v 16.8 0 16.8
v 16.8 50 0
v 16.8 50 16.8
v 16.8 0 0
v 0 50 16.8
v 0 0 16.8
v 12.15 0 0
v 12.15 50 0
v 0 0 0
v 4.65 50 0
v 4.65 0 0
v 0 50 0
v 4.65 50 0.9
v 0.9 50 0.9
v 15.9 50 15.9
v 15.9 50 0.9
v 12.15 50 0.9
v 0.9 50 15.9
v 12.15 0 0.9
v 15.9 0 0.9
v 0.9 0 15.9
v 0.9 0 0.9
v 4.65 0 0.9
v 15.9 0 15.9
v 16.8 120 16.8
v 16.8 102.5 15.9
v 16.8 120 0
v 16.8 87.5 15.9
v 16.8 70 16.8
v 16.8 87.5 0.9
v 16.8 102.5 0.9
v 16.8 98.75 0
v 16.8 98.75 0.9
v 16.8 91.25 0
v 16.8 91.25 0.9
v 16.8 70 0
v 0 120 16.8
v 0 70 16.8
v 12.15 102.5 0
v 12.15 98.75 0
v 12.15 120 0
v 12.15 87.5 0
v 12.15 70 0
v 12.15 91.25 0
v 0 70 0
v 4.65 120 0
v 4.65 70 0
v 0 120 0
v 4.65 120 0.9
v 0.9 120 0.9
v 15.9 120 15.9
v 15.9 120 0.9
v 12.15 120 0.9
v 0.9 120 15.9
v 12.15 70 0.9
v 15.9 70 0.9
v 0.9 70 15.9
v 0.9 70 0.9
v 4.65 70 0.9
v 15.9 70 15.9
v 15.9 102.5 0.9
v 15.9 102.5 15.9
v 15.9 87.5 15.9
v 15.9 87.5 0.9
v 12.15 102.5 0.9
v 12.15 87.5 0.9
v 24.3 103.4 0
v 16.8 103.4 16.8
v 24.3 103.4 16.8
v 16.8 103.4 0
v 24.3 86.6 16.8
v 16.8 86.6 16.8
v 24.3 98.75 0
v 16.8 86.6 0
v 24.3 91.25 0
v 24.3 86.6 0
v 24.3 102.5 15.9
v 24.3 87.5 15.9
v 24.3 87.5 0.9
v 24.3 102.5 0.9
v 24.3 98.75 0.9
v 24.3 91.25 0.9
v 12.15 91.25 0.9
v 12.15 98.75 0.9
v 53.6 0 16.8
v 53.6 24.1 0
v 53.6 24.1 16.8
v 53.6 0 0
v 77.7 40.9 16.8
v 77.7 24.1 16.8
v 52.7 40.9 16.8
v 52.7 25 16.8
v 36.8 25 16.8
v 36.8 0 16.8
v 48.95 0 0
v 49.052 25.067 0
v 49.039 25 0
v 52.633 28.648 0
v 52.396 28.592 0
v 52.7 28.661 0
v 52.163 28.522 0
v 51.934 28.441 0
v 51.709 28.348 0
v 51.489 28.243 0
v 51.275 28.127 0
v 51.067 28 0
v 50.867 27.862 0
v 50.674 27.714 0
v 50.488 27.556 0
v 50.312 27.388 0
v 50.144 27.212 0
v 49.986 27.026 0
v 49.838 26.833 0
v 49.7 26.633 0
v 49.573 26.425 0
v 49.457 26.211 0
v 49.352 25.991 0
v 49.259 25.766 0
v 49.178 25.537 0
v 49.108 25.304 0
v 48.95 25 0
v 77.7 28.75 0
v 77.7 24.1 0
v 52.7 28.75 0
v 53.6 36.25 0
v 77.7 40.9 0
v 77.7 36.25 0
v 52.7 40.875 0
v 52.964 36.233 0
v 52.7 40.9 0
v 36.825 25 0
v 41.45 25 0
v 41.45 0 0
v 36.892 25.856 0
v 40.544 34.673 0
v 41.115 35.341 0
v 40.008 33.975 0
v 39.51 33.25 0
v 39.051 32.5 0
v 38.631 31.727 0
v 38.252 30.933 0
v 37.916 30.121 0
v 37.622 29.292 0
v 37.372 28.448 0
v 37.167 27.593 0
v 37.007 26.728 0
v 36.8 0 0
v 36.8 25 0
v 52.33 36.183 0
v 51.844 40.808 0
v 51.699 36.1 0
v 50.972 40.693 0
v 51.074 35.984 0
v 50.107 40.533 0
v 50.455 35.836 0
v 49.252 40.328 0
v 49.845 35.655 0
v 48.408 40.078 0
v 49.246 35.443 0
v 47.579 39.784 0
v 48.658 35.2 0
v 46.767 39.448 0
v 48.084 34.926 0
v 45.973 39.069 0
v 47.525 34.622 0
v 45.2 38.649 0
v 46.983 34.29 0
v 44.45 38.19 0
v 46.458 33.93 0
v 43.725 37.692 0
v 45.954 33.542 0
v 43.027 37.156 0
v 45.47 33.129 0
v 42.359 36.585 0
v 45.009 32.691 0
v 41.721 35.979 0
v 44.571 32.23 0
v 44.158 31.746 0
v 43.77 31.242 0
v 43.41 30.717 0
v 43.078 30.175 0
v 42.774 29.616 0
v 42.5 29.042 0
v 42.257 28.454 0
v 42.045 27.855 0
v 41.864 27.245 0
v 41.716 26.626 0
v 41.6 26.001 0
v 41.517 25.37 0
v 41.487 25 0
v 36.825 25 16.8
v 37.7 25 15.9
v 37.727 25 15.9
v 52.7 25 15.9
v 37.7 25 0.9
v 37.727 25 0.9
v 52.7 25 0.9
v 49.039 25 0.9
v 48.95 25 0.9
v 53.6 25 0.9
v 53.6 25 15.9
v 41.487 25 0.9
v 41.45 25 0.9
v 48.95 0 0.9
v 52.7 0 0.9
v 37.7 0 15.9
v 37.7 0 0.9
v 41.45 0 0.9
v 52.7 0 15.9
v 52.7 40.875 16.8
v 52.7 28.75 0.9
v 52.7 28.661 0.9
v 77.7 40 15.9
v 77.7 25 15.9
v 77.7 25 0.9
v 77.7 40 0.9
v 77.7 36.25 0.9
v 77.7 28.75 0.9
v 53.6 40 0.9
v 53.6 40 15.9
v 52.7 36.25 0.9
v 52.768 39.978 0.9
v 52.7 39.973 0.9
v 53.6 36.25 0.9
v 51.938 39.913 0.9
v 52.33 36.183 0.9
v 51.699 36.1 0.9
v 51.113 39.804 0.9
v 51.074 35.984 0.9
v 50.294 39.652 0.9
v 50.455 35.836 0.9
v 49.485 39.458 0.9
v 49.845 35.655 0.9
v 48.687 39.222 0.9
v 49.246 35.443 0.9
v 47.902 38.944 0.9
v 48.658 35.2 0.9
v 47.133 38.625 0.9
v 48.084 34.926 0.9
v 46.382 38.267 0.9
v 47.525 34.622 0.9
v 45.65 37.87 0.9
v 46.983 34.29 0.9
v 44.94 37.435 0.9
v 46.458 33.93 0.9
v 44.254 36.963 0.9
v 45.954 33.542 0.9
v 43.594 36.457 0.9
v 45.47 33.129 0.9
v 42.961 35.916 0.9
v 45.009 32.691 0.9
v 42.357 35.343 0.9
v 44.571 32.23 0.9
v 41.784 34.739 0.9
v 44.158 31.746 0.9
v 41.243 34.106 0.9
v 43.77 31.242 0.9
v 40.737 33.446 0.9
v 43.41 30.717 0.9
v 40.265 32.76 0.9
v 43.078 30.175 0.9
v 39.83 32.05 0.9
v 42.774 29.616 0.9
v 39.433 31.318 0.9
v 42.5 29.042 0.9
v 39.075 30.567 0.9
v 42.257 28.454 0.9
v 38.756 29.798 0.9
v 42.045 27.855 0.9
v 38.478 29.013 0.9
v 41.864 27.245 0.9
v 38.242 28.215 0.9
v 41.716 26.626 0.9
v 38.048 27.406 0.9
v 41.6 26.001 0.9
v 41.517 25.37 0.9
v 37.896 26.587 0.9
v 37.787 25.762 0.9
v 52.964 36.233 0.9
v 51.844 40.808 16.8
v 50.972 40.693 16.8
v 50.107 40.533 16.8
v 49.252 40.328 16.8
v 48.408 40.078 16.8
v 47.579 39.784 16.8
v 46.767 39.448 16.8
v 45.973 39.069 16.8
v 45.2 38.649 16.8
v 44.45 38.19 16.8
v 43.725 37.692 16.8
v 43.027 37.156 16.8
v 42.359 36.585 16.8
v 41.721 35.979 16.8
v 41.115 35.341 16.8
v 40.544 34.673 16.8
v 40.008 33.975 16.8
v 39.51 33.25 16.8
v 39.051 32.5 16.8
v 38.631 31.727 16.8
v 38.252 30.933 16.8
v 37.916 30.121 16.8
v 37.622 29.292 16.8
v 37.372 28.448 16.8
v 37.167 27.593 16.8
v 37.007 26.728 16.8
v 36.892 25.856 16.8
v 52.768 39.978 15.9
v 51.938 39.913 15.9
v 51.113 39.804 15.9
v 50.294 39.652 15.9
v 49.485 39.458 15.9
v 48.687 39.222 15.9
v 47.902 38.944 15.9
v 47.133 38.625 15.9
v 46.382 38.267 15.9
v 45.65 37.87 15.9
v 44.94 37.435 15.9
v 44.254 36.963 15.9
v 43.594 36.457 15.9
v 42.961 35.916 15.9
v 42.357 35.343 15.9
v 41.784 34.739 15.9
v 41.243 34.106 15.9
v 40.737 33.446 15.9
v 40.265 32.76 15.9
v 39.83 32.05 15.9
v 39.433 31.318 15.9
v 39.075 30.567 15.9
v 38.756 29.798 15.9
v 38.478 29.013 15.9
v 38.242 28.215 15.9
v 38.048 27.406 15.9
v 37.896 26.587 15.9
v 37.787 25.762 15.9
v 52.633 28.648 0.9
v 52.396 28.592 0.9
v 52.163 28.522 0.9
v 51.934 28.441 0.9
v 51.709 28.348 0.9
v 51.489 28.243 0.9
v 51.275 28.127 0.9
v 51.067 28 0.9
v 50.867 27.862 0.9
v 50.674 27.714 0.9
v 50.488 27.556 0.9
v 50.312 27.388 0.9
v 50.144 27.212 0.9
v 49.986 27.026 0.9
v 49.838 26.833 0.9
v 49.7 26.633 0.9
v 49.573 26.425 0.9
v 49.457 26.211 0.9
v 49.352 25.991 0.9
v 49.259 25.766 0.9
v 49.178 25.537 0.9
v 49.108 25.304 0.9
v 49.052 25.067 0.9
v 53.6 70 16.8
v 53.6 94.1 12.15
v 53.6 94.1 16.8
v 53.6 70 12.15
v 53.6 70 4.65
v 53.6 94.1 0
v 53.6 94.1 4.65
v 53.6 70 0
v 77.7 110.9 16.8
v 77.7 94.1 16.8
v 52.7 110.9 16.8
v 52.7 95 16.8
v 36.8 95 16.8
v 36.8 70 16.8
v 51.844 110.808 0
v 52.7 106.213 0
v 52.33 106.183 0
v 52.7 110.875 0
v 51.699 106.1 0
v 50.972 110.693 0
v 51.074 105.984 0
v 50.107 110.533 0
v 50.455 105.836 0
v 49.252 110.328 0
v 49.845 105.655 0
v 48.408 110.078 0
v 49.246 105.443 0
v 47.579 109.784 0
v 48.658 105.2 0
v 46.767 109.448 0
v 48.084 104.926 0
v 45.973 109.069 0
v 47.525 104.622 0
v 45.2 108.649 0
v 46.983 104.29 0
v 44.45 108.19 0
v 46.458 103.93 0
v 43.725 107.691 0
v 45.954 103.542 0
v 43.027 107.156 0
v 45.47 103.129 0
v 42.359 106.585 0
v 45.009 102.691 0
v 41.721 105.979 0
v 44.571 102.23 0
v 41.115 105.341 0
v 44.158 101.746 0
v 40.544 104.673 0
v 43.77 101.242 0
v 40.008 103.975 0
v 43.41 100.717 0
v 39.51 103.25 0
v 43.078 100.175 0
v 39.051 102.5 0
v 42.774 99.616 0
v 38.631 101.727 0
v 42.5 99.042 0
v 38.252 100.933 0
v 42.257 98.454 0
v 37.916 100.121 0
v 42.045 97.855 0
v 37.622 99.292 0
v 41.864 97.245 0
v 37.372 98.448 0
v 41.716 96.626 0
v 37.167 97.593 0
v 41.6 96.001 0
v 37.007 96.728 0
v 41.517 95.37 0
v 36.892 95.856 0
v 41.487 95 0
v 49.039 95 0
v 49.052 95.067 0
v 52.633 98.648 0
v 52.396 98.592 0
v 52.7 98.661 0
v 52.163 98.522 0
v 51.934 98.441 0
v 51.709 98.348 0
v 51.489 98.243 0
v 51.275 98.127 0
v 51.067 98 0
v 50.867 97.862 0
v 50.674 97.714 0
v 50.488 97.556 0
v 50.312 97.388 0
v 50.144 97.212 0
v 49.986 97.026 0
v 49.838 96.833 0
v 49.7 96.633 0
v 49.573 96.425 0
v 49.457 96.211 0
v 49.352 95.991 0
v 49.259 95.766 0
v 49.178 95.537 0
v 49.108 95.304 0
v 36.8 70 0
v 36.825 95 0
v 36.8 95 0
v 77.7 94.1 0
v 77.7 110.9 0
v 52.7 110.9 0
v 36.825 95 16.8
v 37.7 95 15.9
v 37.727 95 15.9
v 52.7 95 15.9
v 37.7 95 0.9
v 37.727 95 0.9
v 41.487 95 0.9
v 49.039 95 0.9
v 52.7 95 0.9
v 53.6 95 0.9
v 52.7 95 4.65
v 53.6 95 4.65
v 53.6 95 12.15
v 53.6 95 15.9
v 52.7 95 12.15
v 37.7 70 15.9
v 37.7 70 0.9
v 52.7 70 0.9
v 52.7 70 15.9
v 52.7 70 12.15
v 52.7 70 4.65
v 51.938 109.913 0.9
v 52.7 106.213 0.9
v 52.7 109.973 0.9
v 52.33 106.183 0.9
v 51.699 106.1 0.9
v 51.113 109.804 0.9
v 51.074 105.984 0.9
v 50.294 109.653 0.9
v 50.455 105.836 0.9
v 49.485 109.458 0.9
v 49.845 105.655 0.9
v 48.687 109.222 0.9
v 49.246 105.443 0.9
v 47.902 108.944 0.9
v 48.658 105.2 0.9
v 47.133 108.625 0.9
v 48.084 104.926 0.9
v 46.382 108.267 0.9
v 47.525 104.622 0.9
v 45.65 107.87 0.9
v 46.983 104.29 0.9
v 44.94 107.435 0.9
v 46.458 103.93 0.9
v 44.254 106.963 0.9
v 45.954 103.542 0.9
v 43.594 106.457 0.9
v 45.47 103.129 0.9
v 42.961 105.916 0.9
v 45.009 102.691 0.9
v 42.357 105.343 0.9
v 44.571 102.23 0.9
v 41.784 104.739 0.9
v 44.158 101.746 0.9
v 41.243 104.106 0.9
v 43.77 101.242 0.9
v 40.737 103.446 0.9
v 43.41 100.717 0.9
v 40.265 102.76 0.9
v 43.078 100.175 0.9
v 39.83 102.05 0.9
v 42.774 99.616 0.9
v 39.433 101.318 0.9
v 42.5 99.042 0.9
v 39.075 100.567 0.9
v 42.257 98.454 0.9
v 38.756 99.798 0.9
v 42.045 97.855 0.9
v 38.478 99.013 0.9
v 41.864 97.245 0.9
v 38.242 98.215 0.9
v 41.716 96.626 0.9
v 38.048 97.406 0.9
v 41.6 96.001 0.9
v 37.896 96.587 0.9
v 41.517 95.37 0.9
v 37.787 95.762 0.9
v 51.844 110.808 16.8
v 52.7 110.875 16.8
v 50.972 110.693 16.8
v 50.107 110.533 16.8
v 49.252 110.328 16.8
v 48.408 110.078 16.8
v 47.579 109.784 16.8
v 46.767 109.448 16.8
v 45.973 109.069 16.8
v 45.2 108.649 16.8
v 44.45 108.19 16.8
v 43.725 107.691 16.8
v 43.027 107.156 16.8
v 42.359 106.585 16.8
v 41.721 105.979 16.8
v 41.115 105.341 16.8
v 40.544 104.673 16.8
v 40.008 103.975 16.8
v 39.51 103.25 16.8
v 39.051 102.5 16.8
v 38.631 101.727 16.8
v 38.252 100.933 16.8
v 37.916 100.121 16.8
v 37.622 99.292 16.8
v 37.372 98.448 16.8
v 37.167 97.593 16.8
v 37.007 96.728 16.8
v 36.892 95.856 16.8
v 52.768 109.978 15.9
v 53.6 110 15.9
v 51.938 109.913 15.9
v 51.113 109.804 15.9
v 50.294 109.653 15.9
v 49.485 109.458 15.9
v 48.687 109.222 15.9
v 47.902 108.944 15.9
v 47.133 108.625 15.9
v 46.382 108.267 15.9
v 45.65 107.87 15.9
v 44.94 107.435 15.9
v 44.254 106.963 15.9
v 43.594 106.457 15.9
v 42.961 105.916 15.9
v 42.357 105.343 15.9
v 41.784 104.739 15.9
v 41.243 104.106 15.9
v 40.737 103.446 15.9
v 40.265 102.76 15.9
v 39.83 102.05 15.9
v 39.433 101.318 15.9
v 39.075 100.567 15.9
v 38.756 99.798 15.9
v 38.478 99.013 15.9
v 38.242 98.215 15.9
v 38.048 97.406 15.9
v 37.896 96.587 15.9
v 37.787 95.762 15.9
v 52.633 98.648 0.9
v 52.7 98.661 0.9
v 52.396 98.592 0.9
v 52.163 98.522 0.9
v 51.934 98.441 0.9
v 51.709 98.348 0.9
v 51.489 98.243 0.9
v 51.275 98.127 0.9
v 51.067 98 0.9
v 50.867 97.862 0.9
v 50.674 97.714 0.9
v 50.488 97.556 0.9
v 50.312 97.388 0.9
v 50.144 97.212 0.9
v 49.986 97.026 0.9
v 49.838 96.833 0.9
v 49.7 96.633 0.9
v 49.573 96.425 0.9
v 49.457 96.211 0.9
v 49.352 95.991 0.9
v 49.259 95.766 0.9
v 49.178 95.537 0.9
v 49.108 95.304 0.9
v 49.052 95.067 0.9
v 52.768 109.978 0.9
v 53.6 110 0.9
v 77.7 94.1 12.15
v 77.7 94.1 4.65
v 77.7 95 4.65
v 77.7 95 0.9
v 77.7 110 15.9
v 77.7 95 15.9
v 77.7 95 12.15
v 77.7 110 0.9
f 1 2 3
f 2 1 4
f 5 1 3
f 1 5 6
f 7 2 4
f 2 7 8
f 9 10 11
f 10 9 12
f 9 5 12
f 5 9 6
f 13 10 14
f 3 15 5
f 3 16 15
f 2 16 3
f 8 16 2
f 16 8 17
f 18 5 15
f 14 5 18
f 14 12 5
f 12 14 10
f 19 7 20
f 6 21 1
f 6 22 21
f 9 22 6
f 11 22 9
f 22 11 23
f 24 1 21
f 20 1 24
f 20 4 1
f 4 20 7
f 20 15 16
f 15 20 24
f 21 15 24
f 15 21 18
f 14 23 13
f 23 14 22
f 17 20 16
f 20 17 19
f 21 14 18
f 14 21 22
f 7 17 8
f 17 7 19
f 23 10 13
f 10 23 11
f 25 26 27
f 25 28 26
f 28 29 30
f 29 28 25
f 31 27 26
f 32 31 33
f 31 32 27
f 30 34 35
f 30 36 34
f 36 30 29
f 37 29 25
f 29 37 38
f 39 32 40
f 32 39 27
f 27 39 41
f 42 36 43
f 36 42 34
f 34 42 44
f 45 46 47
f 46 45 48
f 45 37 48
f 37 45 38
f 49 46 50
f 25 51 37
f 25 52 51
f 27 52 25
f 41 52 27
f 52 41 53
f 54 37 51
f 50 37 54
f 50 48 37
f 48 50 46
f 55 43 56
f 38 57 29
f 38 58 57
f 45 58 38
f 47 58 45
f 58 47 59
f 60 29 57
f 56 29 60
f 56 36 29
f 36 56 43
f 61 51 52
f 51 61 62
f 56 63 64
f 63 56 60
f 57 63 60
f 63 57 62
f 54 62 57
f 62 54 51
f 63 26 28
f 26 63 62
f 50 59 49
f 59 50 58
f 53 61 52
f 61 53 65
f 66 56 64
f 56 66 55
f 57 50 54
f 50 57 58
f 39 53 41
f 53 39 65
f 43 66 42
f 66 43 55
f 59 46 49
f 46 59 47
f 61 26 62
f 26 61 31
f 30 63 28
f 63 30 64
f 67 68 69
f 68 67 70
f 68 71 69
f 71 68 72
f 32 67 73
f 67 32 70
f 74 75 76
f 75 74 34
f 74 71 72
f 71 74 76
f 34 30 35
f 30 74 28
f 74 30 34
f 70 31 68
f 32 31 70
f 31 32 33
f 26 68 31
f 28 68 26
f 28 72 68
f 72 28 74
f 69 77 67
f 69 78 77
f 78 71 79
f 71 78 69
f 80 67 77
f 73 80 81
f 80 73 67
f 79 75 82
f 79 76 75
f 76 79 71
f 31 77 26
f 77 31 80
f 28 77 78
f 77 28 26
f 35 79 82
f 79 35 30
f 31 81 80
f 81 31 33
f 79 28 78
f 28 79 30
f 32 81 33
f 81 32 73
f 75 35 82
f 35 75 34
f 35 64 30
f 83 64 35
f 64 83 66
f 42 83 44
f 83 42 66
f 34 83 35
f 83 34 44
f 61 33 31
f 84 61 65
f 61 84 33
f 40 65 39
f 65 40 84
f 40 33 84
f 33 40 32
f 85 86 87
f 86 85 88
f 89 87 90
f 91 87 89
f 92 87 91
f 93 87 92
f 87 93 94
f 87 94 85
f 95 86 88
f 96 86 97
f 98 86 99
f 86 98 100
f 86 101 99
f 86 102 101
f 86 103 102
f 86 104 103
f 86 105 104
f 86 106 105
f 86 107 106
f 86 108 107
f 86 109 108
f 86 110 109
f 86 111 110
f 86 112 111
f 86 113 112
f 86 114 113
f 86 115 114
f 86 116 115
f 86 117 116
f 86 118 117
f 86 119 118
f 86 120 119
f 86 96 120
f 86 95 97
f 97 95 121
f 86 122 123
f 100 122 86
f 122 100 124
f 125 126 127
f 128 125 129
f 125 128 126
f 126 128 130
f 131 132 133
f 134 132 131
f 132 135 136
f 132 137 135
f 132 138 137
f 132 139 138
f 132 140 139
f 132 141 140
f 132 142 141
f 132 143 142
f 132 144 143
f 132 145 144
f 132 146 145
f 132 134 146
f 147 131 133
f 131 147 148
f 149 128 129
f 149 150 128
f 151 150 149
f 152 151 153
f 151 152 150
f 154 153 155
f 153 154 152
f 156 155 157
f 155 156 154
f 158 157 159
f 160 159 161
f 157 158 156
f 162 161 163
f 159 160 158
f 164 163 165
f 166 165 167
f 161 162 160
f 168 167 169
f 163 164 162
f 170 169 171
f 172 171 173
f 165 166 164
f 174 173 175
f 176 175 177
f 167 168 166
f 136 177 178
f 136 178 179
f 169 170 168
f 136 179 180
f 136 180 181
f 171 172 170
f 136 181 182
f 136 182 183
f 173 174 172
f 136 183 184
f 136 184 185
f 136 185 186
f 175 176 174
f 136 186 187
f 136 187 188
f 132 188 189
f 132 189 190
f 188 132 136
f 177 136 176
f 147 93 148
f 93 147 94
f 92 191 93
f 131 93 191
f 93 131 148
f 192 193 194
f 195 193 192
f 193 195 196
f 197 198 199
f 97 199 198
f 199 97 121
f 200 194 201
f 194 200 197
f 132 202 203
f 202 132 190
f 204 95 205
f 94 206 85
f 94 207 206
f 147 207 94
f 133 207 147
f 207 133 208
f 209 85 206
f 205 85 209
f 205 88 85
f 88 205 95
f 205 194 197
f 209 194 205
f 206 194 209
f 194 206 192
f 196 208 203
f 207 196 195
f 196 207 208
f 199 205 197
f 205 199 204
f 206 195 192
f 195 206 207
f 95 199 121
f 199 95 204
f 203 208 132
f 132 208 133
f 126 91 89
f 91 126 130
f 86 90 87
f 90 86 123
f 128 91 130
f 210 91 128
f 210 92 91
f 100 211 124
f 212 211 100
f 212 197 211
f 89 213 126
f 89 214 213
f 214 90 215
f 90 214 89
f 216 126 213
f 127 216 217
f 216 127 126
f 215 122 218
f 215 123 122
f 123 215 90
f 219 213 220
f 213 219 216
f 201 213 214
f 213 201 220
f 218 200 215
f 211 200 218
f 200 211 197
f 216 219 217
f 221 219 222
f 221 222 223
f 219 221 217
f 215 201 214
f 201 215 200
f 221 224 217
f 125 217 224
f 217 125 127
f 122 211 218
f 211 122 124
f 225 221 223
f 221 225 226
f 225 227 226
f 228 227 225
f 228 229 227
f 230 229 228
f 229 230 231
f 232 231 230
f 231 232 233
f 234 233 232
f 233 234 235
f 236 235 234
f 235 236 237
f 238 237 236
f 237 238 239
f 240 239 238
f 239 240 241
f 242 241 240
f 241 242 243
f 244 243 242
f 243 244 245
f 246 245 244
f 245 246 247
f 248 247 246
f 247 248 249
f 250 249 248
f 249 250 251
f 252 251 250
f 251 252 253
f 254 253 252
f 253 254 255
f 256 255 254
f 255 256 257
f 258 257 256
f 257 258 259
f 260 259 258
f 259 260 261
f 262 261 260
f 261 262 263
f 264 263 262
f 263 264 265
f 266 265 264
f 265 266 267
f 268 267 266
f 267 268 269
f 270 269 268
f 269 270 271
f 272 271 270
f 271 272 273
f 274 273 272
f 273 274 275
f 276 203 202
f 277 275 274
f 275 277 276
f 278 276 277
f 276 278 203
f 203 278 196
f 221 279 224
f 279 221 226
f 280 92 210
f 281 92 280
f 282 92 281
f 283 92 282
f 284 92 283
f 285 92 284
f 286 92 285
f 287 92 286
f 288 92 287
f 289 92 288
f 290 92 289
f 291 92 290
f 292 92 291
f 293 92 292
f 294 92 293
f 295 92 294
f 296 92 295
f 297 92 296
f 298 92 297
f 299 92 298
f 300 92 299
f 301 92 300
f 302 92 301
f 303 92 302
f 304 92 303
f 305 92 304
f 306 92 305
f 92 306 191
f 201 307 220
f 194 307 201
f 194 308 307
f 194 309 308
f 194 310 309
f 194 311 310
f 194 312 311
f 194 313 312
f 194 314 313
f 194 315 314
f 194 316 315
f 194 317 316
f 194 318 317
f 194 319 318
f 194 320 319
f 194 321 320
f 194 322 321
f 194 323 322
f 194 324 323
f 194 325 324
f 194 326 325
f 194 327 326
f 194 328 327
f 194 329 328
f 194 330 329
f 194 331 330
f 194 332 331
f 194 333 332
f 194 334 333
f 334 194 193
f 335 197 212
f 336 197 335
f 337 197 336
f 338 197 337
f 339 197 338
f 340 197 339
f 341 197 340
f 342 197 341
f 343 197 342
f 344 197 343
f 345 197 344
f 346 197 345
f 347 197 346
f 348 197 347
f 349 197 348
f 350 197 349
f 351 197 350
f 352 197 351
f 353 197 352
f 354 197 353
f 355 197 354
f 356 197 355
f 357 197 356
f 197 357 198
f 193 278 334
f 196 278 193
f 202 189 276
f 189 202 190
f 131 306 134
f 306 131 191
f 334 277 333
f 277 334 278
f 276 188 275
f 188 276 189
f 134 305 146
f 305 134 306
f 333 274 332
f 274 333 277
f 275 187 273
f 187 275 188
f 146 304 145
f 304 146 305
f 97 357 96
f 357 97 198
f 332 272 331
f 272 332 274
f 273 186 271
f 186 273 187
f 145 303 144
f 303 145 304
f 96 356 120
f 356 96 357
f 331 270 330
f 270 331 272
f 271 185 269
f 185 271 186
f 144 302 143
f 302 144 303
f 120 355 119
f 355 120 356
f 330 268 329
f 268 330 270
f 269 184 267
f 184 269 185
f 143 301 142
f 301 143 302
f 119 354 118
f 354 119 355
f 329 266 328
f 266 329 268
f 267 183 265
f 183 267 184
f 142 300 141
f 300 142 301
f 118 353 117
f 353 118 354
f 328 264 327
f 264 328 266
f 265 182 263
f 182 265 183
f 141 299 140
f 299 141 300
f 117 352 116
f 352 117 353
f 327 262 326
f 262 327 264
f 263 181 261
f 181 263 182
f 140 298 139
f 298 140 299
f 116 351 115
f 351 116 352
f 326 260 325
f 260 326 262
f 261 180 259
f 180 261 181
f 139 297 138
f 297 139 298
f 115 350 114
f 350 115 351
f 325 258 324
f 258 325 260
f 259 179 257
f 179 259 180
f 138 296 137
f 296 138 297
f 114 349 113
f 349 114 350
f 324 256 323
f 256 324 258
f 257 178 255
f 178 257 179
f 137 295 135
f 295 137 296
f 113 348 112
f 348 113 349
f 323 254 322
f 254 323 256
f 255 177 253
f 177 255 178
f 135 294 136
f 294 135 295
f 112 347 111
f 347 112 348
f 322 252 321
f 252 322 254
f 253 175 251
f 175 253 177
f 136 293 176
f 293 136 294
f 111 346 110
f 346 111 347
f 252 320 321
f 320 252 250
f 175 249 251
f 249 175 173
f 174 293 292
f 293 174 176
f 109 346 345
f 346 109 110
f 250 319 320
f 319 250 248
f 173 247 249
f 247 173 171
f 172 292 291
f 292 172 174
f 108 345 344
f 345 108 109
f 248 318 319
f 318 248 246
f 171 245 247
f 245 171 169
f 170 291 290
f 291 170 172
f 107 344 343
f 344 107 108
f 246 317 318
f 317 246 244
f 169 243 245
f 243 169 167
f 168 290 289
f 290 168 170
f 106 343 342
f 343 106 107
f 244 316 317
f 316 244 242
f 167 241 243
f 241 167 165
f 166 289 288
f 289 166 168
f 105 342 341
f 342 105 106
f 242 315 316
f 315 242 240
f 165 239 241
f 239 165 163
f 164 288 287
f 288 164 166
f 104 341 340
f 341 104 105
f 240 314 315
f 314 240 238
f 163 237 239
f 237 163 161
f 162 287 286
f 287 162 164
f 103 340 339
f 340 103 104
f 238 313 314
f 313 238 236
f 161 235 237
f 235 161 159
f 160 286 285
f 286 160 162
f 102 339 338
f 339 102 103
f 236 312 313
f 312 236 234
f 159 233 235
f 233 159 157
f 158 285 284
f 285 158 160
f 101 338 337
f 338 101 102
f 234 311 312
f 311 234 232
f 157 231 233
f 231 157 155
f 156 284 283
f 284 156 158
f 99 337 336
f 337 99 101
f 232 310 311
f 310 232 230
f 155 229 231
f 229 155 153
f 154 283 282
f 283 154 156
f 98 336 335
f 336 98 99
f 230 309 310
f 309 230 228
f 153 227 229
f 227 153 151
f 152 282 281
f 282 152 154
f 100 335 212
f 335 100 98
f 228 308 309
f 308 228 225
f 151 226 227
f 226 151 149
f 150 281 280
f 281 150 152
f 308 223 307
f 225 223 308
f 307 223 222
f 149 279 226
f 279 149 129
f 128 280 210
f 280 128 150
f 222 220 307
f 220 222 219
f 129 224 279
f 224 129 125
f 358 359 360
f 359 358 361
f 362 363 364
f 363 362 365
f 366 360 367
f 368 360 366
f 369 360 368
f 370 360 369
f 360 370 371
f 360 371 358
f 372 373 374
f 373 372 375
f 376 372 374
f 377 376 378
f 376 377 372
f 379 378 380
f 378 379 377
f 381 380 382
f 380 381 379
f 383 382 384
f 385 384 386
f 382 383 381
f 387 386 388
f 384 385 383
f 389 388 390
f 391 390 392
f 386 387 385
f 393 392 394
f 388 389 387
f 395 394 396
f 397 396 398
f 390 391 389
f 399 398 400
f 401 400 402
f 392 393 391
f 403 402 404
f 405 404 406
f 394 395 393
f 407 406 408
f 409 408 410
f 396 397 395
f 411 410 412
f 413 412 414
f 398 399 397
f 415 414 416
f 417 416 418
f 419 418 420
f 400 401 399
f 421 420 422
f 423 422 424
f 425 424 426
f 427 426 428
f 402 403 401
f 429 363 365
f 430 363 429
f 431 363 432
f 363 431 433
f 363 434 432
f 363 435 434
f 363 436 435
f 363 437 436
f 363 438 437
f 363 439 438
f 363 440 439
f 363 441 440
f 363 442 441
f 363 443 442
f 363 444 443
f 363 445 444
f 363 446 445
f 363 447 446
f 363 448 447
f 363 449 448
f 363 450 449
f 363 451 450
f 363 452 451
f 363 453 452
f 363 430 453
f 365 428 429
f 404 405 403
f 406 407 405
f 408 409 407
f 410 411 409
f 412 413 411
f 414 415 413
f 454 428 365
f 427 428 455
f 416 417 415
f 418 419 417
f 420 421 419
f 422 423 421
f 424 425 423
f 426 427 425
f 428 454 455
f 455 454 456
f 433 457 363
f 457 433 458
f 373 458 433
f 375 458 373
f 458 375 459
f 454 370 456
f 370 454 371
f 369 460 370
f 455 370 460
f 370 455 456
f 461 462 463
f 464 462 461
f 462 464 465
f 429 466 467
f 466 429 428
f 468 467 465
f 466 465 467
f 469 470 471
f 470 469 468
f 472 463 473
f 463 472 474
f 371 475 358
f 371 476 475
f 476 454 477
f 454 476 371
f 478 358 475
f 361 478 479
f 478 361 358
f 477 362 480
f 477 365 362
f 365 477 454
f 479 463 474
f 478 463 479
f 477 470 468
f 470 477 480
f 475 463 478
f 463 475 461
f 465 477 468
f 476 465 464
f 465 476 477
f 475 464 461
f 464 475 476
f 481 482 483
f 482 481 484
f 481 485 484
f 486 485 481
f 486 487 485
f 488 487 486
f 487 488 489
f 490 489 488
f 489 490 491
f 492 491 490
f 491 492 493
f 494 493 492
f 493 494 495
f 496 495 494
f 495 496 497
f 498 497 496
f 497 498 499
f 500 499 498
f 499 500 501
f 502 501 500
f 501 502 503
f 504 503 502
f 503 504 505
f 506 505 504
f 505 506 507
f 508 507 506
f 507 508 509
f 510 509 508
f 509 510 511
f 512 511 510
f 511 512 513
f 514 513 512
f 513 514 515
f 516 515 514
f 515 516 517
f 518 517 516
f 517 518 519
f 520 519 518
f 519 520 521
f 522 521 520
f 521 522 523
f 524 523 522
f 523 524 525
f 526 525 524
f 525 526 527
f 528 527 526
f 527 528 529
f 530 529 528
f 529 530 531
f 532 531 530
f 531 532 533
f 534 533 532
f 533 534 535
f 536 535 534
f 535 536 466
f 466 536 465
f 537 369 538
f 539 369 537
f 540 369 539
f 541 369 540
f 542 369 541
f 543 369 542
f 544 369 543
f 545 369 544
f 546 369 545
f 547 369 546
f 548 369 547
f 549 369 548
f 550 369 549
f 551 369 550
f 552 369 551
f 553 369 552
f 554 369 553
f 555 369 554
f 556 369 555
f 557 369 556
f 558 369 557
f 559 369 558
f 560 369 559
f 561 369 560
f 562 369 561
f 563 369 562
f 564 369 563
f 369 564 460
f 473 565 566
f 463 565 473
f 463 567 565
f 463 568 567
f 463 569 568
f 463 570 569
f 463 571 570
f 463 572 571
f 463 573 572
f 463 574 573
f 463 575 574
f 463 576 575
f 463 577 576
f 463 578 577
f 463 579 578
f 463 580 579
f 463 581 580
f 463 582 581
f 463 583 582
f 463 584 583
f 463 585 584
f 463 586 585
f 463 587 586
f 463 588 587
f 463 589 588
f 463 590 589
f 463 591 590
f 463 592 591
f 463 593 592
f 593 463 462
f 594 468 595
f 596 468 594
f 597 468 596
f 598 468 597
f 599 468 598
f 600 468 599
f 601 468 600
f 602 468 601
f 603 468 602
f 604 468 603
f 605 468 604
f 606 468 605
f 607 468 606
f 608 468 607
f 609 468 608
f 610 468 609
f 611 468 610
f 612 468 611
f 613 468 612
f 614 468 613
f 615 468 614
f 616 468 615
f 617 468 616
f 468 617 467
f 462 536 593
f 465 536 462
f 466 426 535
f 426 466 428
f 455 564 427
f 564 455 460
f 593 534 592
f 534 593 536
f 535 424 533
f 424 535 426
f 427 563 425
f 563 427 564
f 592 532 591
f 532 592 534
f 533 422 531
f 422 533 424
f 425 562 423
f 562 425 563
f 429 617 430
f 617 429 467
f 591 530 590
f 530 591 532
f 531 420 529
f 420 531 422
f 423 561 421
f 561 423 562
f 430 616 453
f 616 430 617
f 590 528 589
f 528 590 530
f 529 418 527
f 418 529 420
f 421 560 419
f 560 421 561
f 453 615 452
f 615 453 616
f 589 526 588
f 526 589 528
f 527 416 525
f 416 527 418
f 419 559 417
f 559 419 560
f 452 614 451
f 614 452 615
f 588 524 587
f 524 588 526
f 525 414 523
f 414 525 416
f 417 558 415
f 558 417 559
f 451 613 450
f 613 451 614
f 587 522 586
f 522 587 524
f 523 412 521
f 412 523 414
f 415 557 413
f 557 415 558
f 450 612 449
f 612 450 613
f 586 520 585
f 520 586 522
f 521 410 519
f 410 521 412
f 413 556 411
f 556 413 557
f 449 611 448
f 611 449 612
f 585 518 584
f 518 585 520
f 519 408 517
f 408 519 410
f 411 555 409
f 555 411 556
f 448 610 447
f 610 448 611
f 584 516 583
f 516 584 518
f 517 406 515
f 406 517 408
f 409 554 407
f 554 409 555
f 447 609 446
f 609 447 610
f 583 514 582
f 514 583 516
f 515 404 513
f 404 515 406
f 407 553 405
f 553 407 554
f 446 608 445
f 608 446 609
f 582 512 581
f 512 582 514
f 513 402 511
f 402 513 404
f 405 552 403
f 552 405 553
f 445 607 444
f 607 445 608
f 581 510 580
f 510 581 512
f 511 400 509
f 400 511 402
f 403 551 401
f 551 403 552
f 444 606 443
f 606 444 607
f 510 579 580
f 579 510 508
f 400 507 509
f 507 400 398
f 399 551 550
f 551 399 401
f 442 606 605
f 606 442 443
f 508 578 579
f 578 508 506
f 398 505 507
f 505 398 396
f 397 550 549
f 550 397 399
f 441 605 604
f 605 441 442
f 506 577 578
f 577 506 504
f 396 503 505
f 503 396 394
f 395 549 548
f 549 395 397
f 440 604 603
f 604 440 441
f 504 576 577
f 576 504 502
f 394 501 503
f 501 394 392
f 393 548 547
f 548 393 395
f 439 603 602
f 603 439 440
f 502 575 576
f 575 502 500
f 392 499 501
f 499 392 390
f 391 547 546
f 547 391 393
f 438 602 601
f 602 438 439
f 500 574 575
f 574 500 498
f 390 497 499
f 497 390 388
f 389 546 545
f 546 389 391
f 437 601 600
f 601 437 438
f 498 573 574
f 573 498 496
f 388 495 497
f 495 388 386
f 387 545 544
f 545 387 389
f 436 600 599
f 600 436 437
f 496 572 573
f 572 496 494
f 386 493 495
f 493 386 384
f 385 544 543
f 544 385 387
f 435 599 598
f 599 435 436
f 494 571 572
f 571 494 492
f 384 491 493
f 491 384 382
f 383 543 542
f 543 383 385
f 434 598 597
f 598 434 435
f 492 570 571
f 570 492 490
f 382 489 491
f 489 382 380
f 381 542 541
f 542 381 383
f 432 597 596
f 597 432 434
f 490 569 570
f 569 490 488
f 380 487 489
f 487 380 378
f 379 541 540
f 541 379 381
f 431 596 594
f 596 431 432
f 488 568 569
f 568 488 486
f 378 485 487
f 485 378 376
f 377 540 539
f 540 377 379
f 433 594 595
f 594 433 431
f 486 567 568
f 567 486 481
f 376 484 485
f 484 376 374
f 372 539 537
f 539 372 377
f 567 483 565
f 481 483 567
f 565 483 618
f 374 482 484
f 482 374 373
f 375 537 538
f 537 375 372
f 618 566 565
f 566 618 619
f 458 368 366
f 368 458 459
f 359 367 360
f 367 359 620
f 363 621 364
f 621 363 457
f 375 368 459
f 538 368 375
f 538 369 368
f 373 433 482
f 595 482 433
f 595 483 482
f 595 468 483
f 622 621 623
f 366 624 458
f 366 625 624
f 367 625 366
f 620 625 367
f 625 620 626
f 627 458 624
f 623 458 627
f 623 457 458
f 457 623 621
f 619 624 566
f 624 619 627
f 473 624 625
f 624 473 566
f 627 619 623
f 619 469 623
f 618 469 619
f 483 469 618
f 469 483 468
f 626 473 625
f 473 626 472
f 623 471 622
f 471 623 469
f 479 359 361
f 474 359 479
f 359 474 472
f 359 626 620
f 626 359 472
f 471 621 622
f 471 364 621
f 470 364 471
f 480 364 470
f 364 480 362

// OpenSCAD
/* [Shape] */
// Internal square space for each tube
internal_space = 15;
// Perimeter thickness for each tube
thickness  = 0.9;
// Tube length, halved for curved tubes
length = 50;
// Increase thickness by 0.5mm and is slow
rounded = false;

/* [Build plate] */
line_tubes = 1; // [0,1,2,3,4]
t_tubes = 1; // [0,1,2,3,4]
curved_tubes = 1; // [0,1,2,3,4]
curved_tubes_with_left_cut = 1; // [0,1,2,3,4]

/* [Rendering] */
// The number of faces to draw for the curved shape
$fn = 120; // [30, 60, 90, 120]

/* [Hidden] */
cutw = internal_space/2;

// makeTube creates a simple tube using the specified length
// and global thickness.
module makeTube(length = 50) {
    w = internal_space + 2*thickness;
    difference() {
        cube([w, length, w]);
        translate([thickness, -1, thickness])
            cube([internal_space, length+2, internal_space]);
    }
}

// tube creates a tube shape with the specified length and 
module tube(length=50, cut=true) {
    if (cut) {
        difference() {
            makeTube(length);
            // Corte traseiro para passar fios
            translate([cutw/2+thickness, -1, -1])
                cube([cutw, length+2, 2*thickness+2]);
        }
    } else {
        makeTube(length);
    }
}

// tube_t makes a T shaped tube
module tube_t(length = 50) {
    y = length/2 - internal_space/2;
    l = cutw;
    difference() {
        tube(length=length);
        translate([internal_space/2, y, -1])
            cube([internal_space, internal_space, internal_space+thickness+1]);
    }
    translate([internal_space + cutw + thickness*2, y-thickness, 0]) 
        rotate([0, 0, 90])
        tube(length=l);
    
    innerCorner = (internal_space - cutw)/2;
    translate([internal_space-cutw/2+thickness, length/2-innerCorner*2, 0])
        cube([innerCorner+thickness, innerCorner, thickness]);
    translate([internal_space-cutw/2+thickness, length/2+innerCorner, 0])
        cube([innerCorner+thickness, innerCorner, thickness]);
}

// tube_90 makes a curved tube with 90 degrees rotation. length is halved
// and cutLeft, if specified, switches the cut from bottom to the inner of the
// curve.
module tube_90(length = 50, cutLeft=false) {
    c1 = length/2;
    difference() {
        $v = cutLeft ? [length+thickness, length/2+thickness+2, cutw] : [0, 0, 0];
        union() {
            // tubes laterais
            tube(length=c1, cut=!cutLeft);
            translate([c1+internal_space+thickness, c1-thickness, 0])
                rotate([0, 0, 90])
                tube(length=c1, cut=!cutLeft);
            
            // Cantoneira
            difference() {
                translate([internal_space+thickness*2, c1-thickness, 0])
                    rotate([0, 0, 90])
                    rotate_extrude(angle=360)
                    difference() {
                        square(internal_space + 2*thickness);
                        translate([thickness, thickness, 0]) square(internal_space);
                        translate([cutw/2 + thickness, 0, 0]) square(cutw);
                    }
                translate([0,0,-1])
                    cube([length, c1, internal_space+thickness*2+2]);
                translate([internal_space+thickness*2,0,-1])
                    cube([length, length, internal_space+thickness*2+2]);
            }
        }
        translate([thickness*2, -1, cutw/2+thickness])
            cube($v);
    }
}

module applyRounded() {
    if (rounded) {
        minkowski() {
            children();
            sphere(0.25, $fn=6);
        }
    } else {
        children();
    }
}

// Draw all shapes on build plate

offSet = thickness*2 + internal_space + 10;

if(line_tubes > 0) {
    for (i=[0:line_tubes-1]) {
        color("white")
            translate([i*offSet, 0, 0])
            applyRounded()
            tube(length = length);
    }
}

if(t_tubes > 0) {
    for (i=[0:t_tubes-1]) {
        color("white")
            translate([i*offSet, length+20, 0])
            applyRounded()
            tube_t(length = length);
    }
}

if(curved_tubes > 0) {
    for(i=[0:curved_tubes-1]) {
        $x = line_tubes*offSet + 10 + 2 * i * offSet;
        color("white")
            translate([$x, 0, 0])
            applyRounded()
            tube_90(length=length);
    }
}

if(curved_tubes_with_left_cut>0) {
    for(i=[0:curved_tubes_with_left_cut-1]) {
        $x = t_tubes*offSet + 10 + 2 * i * offSet;
        color("white")
            translate([$x, length+20, 0])
            applyRounded()
            tube_90(length=length, cutLeft = true);
    }
}
